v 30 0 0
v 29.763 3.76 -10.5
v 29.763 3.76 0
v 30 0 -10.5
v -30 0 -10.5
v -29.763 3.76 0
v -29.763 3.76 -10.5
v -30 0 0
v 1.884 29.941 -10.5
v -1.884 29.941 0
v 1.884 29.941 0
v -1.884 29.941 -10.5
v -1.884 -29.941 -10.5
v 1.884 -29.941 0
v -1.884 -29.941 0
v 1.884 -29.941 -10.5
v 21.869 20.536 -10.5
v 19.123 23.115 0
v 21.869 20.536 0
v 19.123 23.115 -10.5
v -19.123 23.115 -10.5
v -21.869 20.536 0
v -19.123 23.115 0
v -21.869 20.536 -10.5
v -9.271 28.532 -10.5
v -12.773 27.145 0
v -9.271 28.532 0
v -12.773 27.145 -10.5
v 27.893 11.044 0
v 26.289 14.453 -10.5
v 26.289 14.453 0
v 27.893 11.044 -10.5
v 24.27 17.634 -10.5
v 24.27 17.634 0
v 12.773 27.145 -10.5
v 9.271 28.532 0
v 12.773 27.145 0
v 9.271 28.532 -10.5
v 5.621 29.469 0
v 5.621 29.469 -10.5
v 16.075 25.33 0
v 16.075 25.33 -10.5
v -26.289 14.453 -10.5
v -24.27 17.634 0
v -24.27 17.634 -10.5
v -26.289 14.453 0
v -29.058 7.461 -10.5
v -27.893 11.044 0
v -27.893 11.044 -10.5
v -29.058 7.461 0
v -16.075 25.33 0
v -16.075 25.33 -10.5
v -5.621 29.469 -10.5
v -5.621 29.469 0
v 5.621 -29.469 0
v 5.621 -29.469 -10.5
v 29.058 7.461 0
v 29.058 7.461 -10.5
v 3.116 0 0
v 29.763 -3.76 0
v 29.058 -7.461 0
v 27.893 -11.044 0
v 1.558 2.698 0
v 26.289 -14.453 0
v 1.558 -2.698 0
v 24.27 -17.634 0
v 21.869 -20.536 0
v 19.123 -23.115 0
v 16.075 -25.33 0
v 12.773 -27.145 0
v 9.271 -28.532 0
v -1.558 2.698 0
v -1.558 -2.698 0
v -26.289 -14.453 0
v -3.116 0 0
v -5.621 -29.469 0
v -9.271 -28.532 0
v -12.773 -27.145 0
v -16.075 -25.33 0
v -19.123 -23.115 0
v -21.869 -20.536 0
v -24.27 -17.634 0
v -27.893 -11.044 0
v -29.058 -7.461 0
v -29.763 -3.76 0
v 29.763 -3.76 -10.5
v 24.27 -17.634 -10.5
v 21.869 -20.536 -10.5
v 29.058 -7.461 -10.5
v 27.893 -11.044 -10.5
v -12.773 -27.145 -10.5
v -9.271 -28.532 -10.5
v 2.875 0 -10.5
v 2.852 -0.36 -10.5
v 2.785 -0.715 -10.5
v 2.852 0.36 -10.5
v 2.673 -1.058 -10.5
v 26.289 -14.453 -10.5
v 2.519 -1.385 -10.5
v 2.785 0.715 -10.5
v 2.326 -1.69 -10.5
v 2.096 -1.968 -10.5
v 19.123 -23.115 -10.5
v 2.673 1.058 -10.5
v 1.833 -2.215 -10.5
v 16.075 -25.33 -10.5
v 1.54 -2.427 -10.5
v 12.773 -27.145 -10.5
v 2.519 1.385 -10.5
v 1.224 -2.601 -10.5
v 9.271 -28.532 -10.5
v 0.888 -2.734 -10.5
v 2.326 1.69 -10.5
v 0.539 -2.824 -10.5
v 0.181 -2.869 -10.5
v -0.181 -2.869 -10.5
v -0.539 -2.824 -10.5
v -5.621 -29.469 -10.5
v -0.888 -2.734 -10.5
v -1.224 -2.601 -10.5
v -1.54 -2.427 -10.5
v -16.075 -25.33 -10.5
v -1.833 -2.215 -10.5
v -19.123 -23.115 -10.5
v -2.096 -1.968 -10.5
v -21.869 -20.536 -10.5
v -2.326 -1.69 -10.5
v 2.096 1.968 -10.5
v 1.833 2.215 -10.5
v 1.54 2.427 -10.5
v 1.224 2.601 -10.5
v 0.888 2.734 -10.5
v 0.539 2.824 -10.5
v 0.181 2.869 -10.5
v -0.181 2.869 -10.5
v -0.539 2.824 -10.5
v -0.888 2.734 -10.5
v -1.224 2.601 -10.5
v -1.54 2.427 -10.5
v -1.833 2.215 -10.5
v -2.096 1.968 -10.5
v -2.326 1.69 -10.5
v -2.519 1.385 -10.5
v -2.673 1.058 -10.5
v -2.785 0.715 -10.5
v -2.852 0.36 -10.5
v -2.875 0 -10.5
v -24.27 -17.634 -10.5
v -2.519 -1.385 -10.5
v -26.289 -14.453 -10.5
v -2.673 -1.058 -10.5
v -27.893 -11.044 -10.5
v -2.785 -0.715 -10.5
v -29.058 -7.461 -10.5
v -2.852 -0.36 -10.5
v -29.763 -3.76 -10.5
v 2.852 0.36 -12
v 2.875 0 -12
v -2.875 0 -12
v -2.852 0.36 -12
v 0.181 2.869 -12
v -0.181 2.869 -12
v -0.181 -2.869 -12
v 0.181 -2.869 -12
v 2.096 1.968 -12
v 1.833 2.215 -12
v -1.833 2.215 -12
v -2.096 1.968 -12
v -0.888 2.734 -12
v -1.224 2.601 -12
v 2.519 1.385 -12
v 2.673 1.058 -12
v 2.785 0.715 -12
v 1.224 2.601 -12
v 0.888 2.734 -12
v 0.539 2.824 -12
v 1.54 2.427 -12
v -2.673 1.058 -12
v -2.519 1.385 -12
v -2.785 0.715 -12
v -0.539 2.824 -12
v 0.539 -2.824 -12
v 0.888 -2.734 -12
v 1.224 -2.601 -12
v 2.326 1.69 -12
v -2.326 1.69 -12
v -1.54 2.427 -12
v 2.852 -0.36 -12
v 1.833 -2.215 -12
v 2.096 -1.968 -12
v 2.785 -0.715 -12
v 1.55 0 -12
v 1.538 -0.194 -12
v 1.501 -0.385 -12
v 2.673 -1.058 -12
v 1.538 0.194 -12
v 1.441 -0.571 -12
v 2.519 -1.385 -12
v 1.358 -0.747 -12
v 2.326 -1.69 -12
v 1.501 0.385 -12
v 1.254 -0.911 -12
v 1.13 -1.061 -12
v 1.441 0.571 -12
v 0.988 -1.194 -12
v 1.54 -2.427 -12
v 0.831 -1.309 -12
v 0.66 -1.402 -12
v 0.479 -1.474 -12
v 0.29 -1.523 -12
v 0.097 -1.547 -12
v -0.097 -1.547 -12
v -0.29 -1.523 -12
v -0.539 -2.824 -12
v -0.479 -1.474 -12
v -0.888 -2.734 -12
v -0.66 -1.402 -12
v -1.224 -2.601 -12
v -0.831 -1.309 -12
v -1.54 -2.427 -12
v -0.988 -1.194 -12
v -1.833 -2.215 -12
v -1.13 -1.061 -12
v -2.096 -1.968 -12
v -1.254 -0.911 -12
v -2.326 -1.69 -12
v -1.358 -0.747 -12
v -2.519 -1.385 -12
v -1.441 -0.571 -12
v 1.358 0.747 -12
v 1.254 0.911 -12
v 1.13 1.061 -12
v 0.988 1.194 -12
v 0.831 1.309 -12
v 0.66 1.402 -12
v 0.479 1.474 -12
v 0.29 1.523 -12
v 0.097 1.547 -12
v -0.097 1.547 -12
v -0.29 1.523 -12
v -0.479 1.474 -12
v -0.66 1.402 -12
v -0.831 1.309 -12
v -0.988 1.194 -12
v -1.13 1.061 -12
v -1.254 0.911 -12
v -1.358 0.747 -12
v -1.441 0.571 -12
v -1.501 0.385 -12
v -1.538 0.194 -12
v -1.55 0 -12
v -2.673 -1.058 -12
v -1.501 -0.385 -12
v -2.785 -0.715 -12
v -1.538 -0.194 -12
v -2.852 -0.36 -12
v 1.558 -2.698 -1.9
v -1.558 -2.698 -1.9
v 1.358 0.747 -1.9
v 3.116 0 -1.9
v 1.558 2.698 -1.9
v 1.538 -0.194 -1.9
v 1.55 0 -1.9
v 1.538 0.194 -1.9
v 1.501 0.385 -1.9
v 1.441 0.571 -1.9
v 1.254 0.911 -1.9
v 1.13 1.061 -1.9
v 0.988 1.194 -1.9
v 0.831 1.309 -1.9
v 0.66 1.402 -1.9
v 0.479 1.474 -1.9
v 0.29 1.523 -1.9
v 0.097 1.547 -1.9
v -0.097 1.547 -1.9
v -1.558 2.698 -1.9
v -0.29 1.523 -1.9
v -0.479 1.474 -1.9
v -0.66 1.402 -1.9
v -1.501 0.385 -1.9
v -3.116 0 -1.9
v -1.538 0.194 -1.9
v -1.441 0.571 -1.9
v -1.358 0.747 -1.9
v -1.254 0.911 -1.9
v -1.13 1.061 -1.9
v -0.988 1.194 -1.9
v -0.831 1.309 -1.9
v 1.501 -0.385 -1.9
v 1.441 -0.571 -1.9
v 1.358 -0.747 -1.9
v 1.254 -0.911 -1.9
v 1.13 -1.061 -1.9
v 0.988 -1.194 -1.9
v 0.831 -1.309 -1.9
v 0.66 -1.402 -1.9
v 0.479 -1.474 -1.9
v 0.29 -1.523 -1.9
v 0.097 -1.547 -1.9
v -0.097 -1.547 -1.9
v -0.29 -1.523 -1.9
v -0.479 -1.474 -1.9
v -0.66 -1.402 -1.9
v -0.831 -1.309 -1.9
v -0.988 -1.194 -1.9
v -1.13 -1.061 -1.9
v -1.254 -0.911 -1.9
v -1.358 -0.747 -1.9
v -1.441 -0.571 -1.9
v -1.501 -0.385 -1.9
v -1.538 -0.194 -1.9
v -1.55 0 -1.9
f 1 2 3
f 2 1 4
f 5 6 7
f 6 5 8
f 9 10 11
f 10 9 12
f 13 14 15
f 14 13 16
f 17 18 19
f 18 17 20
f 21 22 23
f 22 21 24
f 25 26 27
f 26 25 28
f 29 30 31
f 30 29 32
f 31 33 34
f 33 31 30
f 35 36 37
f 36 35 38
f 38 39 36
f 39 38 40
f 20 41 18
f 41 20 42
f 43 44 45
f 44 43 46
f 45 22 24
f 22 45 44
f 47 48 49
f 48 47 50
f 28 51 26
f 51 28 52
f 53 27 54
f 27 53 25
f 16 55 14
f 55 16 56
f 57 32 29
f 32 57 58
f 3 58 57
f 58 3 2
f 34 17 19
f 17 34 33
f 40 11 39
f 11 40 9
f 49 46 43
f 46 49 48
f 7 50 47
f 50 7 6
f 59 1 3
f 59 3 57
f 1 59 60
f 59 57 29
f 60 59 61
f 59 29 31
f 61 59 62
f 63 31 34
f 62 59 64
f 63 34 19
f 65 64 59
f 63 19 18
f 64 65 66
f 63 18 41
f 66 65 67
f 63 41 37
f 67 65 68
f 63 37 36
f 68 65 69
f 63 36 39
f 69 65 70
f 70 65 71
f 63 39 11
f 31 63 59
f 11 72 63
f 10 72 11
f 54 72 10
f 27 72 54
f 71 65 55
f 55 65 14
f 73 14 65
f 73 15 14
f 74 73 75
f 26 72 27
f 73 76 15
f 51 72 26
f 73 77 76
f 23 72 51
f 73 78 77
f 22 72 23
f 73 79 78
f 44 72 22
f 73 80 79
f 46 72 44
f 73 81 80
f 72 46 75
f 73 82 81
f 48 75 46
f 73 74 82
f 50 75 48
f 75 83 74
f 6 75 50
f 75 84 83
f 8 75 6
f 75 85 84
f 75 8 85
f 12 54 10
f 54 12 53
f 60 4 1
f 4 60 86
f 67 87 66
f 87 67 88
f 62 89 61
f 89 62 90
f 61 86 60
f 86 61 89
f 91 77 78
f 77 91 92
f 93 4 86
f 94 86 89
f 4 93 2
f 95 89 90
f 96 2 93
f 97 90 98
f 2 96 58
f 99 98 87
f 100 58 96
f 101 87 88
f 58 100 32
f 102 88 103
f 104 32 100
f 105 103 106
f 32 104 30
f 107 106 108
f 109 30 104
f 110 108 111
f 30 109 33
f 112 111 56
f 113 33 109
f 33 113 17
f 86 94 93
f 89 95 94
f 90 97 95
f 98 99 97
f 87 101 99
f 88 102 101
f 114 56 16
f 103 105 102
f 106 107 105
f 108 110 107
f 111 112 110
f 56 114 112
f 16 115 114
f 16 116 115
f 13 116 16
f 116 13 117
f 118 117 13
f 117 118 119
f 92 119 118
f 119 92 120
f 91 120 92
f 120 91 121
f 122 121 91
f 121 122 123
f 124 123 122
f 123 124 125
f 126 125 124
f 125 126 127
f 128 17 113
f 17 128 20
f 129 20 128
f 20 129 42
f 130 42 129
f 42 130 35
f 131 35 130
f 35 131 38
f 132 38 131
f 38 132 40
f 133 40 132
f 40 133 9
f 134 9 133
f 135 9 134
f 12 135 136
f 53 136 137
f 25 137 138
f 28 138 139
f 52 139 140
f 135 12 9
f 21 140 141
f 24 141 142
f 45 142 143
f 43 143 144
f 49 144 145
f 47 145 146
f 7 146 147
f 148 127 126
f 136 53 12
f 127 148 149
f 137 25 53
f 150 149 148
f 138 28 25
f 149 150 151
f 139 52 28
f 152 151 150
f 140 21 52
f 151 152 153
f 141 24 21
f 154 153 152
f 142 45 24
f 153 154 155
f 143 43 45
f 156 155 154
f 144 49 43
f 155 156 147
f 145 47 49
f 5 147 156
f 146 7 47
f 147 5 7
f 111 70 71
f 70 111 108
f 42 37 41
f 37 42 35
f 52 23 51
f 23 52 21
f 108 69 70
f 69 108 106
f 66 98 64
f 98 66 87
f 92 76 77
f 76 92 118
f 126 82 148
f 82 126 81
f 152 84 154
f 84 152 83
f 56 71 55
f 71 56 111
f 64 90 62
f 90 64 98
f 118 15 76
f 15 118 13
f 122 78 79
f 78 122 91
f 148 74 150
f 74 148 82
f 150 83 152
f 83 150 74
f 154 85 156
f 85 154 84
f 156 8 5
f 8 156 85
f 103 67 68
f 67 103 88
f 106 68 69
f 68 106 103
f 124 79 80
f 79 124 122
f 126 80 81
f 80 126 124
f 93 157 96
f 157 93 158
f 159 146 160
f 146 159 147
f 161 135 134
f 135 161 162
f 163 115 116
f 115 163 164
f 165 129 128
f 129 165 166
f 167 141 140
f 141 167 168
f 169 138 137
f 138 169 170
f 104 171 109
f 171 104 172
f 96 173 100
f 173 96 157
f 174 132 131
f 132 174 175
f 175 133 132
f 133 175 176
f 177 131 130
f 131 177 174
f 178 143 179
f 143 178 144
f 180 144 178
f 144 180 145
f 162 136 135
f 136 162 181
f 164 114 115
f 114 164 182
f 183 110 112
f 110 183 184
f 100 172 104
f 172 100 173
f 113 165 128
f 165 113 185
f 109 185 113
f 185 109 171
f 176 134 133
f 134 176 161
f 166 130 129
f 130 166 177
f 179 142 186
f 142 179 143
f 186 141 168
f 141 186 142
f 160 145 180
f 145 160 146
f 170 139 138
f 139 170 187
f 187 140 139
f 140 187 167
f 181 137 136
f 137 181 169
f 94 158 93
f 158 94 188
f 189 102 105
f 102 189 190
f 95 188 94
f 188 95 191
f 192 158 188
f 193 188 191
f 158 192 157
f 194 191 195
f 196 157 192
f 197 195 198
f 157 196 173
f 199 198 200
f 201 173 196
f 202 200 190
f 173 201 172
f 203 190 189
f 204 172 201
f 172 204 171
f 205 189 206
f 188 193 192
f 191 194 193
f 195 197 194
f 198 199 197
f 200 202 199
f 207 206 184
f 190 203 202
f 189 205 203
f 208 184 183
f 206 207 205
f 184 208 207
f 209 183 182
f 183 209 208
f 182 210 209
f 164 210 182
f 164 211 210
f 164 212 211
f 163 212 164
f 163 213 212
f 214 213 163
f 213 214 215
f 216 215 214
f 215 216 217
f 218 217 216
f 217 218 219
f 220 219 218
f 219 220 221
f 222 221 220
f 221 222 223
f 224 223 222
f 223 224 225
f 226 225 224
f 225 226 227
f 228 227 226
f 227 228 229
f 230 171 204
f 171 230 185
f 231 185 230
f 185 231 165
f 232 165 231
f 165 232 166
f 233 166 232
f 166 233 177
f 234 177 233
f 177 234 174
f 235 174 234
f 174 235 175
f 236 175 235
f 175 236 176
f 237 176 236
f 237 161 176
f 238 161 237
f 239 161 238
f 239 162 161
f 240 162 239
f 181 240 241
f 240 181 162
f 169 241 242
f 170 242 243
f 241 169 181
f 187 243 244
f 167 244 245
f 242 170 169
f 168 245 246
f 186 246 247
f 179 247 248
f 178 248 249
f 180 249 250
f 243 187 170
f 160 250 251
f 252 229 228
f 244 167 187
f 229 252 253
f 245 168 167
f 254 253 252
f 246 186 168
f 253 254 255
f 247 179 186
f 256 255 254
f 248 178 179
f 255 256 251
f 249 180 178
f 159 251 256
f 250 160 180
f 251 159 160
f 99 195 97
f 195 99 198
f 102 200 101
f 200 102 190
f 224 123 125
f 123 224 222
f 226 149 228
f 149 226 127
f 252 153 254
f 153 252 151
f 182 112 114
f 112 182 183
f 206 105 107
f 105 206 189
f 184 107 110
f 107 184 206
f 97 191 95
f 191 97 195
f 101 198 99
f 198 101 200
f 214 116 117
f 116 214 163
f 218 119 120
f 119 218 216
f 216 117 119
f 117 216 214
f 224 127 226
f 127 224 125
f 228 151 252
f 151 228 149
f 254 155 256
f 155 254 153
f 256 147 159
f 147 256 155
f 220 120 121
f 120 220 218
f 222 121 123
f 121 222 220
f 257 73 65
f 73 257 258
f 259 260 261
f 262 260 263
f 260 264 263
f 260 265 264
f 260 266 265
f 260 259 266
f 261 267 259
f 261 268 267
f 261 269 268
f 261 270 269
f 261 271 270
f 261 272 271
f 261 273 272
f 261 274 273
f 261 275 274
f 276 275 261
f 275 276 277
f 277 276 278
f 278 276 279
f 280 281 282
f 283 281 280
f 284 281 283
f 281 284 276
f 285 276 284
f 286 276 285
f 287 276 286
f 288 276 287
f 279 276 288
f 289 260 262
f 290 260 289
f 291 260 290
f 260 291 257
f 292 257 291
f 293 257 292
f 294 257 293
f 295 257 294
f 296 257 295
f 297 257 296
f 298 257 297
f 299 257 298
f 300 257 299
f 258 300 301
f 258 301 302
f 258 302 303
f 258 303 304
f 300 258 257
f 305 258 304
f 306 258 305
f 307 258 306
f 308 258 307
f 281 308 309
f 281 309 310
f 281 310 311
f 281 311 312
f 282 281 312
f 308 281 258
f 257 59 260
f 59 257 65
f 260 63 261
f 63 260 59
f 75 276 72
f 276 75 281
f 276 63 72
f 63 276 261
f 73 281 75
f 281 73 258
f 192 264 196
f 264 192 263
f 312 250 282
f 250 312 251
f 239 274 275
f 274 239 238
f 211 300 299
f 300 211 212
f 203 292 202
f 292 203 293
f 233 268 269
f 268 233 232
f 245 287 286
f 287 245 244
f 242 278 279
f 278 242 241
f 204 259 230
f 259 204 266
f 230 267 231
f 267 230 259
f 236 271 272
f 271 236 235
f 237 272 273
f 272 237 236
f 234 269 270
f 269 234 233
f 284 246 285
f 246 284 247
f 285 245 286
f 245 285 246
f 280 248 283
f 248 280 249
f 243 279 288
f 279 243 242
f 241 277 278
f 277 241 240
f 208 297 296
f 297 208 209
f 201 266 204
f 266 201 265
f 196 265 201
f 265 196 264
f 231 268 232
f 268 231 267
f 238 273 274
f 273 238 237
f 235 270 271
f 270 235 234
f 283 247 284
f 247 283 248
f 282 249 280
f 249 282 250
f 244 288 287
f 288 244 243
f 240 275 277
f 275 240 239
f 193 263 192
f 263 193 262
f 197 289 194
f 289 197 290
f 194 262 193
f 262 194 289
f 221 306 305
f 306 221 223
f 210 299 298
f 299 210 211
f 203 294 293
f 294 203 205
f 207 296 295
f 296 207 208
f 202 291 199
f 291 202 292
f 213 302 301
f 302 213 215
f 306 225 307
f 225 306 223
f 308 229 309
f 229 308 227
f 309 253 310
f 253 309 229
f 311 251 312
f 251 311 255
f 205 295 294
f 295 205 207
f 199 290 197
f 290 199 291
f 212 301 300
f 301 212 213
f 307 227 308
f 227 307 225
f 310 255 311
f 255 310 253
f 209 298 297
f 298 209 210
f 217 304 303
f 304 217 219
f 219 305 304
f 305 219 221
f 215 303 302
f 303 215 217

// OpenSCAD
$fn = 50;


difference() {
	union() {
		translate(v = [0, 0, -10.5000000000]) {
			cylinder(h = 10.5000000000, r = 30.0000000000);
		}
		translate(v = [0, 0, -12.0000000000]) {
			cylinder(h = 12, r = 2.8750000000);
		}
	}
	union() {
		translate(v = [0, 0, 0]) {
			rotate(a = [0, 0, 0]) {
				difference() {
					union() {
						translate(v = [0, 0, -1.9000000000]) {
							linear_extrude(height = 1.9000000000) {
								polygon(points = [[3.1158000000, 0.0000000000], [1.5579000000, 2.6983619531], [-1.5579000000, 2.6983619531], [-3.1158000000, 0.0000000000], [-1.5579000000, -2.6983619531], [1.5579000000, -2.6983619531]]);
							}
						}
					}
					union();
				}
			}
		}
		#translate(v = [0, 0, -100.0000000000]) {
			cylinder(h = 200, r = 1.5500000000);
		}
	}
}
